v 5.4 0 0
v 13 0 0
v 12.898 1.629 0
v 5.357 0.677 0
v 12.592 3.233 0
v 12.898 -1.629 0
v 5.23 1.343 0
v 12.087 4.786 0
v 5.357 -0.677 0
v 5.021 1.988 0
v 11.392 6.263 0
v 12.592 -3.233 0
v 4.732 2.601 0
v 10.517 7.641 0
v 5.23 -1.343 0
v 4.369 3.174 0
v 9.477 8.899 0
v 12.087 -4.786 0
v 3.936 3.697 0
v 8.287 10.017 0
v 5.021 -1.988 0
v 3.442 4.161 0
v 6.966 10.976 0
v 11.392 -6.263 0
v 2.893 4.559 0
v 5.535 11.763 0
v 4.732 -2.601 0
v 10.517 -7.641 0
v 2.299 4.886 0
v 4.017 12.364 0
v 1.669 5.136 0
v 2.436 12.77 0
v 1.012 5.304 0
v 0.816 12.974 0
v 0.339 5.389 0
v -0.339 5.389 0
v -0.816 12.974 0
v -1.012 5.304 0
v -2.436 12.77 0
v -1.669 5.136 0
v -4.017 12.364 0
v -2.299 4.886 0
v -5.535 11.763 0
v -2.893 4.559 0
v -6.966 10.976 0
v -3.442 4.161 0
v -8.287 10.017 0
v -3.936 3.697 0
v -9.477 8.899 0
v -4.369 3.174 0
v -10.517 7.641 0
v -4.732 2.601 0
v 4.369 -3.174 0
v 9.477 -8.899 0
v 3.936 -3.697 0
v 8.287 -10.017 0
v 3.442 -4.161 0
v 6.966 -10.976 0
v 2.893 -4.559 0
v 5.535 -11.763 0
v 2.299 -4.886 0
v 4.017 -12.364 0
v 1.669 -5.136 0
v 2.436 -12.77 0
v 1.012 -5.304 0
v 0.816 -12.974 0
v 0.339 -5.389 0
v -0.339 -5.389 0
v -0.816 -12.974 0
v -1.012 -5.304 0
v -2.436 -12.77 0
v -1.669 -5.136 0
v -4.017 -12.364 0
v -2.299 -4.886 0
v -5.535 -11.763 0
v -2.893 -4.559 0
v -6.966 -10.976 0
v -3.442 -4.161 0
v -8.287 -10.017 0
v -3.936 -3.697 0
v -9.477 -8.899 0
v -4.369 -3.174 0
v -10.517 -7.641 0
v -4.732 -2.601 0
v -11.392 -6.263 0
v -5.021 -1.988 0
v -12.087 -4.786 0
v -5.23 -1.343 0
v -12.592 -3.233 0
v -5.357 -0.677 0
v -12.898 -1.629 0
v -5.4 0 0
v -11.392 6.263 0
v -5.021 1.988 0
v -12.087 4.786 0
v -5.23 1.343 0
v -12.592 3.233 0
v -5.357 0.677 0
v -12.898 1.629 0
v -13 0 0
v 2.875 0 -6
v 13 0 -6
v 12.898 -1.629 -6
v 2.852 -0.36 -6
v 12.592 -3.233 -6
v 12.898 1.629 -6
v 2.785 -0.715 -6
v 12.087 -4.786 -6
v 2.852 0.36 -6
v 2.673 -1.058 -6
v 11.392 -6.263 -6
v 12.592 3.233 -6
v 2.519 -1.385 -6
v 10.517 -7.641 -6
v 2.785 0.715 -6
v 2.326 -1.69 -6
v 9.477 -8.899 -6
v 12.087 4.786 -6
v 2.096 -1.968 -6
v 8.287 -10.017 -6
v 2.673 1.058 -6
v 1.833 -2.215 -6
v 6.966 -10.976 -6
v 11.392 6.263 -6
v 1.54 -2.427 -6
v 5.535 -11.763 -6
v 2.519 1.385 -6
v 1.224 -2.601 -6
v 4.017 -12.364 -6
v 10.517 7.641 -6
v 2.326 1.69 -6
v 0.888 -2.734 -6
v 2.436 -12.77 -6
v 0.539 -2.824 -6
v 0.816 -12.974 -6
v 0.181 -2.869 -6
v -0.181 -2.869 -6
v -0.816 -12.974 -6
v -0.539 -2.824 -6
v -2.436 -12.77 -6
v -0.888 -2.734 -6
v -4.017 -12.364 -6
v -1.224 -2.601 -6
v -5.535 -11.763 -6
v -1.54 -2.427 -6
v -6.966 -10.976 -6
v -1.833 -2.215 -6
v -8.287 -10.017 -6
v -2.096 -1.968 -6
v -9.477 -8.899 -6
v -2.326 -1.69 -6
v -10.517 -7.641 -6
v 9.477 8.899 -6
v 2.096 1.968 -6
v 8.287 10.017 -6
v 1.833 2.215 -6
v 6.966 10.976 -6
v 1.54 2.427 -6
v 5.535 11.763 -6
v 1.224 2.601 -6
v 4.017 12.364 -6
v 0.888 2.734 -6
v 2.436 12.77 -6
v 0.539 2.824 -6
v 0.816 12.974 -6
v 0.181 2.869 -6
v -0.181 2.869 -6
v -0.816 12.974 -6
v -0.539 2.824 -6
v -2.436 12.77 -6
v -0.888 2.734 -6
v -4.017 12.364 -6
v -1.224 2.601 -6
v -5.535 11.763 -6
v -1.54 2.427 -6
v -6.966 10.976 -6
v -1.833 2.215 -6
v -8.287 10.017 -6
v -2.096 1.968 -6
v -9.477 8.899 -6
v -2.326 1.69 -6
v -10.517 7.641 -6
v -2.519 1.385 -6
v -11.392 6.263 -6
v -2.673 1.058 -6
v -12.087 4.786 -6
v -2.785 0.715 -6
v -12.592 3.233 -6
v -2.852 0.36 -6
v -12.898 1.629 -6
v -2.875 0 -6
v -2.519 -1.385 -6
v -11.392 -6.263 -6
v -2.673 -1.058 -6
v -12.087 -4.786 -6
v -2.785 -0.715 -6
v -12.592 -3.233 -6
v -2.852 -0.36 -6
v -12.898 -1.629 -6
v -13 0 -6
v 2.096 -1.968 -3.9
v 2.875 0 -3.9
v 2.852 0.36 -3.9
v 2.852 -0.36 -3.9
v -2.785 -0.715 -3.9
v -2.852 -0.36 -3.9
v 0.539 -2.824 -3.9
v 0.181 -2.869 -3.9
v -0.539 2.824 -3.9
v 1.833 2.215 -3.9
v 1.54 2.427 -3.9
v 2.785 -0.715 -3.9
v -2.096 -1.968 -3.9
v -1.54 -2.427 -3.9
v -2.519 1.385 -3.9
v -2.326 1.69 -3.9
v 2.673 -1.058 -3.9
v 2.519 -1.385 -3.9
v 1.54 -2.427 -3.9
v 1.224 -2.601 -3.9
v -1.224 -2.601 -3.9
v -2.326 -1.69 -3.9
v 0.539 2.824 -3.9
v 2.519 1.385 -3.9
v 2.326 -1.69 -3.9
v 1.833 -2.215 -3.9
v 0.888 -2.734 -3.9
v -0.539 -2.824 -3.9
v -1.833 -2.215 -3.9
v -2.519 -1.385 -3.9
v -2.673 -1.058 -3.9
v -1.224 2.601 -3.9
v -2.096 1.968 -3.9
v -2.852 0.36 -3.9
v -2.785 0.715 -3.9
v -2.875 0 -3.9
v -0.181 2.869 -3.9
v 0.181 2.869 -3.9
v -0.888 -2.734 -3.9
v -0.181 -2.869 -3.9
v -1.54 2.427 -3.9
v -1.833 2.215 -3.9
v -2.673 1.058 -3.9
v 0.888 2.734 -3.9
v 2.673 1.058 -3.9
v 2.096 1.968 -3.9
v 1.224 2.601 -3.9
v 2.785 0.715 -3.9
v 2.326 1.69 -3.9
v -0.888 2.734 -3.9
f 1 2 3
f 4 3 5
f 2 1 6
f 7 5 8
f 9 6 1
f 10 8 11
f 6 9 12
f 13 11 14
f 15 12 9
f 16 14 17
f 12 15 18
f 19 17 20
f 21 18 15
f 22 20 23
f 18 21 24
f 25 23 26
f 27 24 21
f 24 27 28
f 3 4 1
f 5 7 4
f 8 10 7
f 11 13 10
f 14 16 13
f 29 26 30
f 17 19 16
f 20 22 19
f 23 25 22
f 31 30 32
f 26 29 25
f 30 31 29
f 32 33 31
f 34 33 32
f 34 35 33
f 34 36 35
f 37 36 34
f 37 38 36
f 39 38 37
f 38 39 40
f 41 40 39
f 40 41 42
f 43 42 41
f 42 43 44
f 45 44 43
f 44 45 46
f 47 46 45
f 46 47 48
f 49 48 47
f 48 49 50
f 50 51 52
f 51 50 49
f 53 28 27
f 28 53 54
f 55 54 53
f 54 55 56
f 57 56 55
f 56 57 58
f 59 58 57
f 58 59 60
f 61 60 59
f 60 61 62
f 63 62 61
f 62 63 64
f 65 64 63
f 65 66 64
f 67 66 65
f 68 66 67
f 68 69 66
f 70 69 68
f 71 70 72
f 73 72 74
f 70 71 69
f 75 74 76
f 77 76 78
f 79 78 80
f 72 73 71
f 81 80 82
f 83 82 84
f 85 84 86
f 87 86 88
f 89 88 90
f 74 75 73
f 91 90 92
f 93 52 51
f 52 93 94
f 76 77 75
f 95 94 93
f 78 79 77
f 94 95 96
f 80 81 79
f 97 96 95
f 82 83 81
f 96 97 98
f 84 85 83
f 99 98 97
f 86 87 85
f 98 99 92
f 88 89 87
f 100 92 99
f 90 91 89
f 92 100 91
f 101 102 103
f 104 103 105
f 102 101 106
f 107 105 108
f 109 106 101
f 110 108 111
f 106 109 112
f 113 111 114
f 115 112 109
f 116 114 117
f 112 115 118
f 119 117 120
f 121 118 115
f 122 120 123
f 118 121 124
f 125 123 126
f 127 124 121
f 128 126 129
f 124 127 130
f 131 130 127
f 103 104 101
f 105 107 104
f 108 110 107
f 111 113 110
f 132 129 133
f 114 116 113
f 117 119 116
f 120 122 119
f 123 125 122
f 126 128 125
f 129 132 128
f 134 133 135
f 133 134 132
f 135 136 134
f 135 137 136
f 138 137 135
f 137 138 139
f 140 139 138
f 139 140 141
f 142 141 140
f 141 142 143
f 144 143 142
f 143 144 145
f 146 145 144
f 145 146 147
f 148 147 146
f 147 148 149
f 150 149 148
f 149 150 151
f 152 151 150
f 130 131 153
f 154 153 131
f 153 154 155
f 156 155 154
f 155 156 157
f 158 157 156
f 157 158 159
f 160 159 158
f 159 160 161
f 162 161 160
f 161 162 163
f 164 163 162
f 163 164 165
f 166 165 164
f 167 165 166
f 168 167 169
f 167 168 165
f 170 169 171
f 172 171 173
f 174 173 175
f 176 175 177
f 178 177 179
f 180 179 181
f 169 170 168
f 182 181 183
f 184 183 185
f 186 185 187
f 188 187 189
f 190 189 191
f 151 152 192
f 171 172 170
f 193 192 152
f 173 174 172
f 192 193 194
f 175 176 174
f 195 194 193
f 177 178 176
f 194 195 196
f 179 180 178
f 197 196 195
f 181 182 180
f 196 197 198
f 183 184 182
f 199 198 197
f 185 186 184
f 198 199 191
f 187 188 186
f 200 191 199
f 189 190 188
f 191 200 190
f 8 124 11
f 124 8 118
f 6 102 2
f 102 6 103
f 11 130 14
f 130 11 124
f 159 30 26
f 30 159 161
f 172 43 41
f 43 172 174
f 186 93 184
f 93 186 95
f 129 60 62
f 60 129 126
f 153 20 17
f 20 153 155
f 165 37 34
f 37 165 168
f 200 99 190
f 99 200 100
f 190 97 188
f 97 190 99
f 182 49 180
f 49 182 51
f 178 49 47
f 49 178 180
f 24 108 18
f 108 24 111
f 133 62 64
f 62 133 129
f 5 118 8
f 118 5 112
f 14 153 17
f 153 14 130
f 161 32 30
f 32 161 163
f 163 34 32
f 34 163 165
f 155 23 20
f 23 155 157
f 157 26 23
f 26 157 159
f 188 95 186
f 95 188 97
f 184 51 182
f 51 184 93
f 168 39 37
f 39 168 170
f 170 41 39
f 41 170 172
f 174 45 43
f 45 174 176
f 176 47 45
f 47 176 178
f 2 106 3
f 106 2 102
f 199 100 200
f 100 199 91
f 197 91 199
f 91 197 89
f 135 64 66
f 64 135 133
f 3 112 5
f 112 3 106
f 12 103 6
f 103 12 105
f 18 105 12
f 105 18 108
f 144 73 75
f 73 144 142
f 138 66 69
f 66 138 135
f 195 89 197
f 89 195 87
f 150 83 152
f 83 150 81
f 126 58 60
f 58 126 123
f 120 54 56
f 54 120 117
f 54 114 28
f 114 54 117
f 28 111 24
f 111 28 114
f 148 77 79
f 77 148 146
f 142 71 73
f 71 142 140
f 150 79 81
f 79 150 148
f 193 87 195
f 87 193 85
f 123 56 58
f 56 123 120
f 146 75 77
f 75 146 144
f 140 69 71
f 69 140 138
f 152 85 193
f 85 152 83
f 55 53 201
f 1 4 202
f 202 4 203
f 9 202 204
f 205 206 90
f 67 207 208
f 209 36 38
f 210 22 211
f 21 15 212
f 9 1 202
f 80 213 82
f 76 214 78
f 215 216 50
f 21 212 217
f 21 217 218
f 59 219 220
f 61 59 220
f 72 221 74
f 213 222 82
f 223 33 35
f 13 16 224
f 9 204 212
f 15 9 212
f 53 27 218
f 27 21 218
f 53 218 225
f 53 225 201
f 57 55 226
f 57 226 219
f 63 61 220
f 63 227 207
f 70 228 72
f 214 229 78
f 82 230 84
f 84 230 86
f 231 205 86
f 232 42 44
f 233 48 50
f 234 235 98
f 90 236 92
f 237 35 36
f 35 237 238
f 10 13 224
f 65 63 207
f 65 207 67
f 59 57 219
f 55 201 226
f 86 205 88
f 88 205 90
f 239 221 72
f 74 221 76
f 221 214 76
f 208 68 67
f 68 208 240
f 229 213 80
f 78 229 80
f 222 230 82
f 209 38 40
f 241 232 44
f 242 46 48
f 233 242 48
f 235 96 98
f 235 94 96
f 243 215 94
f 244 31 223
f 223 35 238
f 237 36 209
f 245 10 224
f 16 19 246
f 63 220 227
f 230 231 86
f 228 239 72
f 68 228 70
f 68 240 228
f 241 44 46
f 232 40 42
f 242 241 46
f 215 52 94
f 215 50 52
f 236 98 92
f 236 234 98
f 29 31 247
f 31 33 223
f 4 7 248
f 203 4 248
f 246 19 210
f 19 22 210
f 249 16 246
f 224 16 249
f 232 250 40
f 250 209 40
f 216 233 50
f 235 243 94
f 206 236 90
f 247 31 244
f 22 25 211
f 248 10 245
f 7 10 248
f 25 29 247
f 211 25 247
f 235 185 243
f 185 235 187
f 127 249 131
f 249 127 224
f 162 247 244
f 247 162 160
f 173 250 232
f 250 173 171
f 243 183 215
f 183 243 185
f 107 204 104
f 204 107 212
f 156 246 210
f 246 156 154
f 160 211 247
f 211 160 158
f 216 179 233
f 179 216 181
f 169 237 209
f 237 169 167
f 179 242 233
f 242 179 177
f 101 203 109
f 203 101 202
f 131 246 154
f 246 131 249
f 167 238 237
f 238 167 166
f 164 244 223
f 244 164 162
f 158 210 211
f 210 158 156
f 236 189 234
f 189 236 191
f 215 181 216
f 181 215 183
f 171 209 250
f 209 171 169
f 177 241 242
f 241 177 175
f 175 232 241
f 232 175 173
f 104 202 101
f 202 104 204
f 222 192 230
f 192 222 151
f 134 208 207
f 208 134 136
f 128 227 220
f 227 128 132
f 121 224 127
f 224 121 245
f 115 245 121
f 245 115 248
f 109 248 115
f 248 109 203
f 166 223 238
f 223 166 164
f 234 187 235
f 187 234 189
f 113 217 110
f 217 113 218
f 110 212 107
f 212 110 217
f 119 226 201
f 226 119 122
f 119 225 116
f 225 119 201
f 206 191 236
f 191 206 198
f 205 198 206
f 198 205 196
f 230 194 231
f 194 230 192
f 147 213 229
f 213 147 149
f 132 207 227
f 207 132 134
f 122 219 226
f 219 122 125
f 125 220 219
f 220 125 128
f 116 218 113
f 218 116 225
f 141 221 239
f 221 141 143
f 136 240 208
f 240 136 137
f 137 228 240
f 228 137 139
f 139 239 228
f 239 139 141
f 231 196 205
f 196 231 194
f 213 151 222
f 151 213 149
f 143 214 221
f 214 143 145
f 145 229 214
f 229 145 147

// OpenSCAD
$fn = 50;


difference() {
	union() {
		translate(v = [0, 0, -6.0000000000]) {
			cylinder(h = 6, r = 10.0000000000);
		}
		translate(v = [0, 0, -6.0000000000]) {
			cylinder(h = 6, r = 13.0000000000);
		}
	}
	union() {
		translate(v = [0, 0, 0]) {
			rotate(a = [0, 0, 0]) {
				difference() {
					union() {
						#translate(v = [0, 0, -6.0000000000]) {
							cylinder(h = 6, r = 2.6000000000);
						}
						#translate(v = [0, 0, -3.9000000000]) {
							cylinder(h = 3.9000000000, r = 10.0000000000, r1 = 2.8750000000, r2 = 5.4000000000);
						}
						#translate(v = [0, 0, -6.0000000000]) {
							cylinder(h = 6, r = 2.8750000000);
						}
						#translate(v = [0, 0, -6.0000000000]) {
							cylinder(h = 6, r = 2.6000000000);
						}
					}
					union();
				}
			}
		}
	}
}
